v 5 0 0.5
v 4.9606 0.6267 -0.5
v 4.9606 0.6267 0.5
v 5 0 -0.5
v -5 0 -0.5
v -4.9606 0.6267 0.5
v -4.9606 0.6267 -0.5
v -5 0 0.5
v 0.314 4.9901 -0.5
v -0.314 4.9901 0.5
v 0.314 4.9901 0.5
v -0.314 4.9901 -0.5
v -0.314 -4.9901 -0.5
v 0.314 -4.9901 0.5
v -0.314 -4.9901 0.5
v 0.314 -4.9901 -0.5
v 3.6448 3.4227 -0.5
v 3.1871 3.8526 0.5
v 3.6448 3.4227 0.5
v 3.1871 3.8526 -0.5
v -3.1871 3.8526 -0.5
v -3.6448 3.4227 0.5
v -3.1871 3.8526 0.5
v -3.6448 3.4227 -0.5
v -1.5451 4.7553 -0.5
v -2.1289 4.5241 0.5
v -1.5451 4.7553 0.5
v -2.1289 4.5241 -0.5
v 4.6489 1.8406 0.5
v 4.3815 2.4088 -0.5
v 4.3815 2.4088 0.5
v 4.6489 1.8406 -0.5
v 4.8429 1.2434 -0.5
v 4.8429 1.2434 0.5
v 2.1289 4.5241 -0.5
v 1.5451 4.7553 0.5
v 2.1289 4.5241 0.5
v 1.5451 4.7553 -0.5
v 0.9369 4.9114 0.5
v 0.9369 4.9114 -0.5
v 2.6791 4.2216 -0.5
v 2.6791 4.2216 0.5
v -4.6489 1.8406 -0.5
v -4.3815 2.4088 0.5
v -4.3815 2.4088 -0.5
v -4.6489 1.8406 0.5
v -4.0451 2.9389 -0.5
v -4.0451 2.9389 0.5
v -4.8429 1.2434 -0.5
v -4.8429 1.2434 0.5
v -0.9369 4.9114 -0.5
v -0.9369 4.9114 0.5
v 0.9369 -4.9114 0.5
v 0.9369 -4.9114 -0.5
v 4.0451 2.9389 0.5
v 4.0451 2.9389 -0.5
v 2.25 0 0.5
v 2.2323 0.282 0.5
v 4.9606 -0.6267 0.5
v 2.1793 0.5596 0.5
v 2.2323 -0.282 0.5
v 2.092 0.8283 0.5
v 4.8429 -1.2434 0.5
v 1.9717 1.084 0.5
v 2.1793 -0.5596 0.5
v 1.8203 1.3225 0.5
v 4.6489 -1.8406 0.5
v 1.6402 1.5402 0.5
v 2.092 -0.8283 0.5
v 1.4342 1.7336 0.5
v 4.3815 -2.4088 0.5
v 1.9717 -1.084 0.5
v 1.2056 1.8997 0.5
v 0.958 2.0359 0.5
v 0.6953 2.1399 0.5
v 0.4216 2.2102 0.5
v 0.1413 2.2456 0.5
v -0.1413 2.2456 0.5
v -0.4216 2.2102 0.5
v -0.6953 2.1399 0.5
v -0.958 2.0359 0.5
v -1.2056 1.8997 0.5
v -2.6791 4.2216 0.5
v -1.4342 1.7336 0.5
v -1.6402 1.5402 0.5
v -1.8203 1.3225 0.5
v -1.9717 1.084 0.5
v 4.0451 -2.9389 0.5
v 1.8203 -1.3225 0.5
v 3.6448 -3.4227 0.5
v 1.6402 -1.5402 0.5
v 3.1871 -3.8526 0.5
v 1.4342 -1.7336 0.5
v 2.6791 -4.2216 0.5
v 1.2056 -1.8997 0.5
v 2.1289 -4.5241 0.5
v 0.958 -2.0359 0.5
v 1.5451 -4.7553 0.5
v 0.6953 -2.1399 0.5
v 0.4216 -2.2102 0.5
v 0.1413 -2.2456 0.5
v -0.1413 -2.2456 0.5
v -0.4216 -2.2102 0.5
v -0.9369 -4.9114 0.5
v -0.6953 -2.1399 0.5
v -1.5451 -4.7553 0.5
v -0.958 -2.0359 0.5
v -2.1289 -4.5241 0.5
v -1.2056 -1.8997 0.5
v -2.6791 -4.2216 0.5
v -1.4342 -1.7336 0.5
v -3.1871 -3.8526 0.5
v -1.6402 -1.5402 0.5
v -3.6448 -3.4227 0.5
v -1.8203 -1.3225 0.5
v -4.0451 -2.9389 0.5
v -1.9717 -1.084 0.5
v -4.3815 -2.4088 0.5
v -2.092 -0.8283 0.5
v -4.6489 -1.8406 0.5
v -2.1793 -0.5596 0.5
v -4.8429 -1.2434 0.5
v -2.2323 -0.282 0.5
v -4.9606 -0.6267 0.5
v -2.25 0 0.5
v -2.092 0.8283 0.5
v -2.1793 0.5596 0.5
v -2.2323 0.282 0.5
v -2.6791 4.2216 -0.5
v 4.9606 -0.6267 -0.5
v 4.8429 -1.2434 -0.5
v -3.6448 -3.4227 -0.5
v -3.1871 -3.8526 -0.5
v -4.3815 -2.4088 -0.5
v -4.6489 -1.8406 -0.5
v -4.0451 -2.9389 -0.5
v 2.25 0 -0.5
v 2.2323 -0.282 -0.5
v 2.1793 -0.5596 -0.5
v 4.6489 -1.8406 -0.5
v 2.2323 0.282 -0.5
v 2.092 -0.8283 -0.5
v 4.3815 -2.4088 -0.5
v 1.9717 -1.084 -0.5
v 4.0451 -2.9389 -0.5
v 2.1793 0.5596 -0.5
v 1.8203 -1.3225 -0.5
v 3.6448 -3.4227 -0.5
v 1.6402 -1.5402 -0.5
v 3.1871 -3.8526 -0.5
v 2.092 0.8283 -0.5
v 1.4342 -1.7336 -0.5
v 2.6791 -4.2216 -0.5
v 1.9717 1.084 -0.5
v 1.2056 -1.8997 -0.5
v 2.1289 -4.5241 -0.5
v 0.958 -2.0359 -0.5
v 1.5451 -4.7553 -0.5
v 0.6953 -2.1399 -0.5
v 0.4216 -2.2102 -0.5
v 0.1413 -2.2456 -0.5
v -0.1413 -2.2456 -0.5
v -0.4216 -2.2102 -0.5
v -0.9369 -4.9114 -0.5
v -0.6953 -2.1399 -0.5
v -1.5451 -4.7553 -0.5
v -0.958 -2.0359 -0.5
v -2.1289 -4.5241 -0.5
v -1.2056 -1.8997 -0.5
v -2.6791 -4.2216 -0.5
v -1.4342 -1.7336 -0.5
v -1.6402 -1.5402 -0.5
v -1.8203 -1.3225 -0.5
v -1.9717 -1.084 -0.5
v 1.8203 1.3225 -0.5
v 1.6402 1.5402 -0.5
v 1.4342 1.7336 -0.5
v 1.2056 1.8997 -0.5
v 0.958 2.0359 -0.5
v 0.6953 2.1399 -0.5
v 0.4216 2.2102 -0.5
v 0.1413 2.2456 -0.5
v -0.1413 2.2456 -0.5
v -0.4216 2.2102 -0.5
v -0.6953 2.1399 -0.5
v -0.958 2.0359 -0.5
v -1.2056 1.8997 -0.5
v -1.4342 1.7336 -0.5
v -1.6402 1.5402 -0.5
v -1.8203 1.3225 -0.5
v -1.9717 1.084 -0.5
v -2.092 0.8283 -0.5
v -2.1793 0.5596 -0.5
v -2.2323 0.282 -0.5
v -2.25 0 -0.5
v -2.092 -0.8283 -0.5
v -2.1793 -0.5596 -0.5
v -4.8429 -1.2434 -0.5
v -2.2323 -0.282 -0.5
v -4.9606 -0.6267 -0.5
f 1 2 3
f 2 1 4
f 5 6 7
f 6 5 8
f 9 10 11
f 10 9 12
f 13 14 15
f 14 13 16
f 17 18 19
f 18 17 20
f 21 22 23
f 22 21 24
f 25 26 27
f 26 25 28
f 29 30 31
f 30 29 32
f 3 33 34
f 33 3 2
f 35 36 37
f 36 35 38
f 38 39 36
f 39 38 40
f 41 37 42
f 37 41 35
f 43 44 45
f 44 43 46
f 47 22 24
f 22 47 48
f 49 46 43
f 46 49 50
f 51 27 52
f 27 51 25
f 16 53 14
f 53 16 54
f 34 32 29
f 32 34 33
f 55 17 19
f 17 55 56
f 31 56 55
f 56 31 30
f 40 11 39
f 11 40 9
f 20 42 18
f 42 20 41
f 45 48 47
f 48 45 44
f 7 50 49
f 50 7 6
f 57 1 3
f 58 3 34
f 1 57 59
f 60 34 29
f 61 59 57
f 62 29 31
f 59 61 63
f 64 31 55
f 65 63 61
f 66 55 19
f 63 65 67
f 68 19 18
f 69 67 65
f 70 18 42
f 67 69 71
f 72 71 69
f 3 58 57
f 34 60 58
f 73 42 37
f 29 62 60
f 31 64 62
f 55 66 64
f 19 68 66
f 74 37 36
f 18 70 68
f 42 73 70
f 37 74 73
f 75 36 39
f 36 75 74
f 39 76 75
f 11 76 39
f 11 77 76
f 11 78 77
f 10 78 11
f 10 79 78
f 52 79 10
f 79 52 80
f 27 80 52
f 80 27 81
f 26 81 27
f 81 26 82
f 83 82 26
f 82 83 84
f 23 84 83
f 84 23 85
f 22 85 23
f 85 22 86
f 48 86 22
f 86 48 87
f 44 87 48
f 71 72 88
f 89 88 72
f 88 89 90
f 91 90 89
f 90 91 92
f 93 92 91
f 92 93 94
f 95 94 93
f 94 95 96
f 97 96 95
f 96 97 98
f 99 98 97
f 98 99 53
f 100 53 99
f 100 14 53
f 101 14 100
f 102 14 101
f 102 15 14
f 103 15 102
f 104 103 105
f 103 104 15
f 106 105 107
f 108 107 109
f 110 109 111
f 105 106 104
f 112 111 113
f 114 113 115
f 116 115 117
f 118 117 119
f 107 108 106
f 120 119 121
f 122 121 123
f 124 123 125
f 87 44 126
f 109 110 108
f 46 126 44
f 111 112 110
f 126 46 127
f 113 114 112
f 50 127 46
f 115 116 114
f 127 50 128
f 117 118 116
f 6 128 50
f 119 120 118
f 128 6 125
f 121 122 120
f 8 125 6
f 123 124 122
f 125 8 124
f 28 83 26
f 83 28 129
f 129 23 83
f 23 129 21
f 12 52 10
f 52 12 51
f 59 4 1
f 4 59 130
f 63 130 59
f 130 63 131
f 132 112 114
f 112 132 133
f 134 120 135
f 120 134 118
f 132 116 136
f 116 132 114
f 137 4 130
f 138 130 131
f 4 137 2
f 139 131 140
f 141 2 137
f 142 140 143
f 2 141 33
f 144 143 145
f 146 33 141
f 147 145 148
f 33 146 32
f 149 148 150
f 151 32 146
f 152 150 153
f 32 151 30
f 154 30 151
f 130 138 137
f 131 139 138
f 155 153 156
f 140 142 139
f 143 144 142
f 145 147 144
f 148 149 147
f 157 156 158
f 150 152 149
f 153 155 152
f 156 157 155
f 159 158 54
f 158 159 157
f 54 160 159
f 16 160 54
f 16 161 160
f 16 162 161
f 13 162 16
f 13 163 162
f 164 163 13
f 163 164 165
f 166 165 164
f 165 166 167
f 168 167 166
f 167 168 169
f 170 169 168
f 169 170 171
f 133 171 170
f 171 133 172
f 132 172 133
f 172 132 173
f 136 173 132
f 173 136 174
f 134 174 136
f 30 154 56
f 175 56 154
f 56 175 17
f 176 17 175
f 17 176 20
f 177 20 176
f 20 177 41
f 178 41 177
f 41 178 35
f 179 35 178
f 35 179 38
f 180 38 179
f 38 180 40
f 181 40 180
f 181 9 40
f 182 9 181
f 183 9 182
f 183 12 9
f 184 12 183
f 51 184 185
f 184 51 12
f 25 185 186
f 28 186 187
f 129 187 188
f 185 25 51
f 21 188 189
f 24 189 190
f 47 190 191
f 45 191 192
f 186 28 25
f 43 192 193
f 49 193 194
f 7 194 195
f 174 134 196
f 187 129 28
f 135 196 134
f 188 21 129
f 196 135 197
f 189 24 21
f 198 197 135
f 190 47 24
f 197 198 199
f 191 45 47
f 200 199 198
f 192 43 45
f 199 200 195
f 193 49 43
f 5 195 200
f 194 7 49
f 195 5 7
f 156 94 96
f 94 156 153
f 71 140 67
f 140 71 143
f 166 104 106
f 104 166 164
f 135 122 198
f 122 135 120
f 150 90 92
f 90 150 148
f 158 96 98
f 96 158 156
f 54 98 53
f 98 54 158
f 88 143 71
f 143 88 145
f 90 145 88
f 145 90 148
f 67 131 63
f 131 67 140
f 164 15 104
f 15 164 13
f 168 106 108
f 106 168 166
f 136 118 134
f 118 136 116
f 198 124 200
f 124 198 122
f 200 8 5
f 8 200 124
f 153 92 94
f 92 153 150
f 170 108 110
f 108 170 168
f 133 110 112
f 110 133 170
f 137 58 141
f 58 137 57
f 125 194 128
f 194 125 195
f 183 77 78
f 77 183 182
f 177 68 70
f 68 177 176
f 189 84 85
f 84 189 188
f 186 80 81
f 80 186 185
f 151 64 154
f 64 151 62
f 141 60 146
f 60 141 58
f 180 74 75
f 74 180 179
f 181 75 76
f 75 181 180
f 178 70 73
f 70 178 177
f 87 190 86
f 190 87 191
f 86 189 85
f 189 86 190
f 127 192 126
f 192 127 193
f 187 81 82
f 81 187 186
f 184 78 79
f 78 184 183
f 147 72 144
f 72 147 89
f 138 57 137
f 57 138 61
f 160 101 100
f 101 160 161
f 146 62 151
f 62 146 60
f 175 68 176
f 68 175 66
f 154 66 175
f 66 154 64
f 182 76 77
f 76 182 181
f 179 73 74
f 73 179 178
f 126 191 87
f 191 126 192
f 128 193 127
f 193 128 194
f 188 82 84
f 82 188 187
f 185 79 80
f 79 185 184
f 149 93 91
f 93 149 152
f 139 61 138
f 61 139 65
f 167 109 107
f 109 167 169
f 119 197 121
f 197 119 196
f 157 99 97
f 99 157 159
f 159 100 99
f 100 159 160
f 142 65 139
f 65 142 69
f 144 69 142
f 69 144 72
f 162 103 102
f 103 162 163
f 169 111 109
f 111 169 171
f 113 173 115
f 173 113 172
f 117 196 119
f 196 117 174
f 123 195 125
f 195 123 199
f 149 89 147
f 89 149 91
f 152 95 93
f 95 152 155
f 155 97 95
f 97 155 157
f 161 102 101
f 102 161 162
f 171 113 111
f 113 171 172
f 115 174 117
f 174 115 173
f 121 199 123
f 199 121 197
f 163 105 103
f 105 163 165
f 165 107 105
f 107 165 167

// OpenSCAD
$fn = 50;


difference() {
	union() {
		translate(v = [0, 0, -0.5000000000]) {
			cylinder(h = 1, r = 5.0000000000);
		}
	}
	union() {
		translate(v = [0, 0, -100.0000000000]) {
			cylinder(h = 200, r = 2.2500000000);
		}
	}
}
